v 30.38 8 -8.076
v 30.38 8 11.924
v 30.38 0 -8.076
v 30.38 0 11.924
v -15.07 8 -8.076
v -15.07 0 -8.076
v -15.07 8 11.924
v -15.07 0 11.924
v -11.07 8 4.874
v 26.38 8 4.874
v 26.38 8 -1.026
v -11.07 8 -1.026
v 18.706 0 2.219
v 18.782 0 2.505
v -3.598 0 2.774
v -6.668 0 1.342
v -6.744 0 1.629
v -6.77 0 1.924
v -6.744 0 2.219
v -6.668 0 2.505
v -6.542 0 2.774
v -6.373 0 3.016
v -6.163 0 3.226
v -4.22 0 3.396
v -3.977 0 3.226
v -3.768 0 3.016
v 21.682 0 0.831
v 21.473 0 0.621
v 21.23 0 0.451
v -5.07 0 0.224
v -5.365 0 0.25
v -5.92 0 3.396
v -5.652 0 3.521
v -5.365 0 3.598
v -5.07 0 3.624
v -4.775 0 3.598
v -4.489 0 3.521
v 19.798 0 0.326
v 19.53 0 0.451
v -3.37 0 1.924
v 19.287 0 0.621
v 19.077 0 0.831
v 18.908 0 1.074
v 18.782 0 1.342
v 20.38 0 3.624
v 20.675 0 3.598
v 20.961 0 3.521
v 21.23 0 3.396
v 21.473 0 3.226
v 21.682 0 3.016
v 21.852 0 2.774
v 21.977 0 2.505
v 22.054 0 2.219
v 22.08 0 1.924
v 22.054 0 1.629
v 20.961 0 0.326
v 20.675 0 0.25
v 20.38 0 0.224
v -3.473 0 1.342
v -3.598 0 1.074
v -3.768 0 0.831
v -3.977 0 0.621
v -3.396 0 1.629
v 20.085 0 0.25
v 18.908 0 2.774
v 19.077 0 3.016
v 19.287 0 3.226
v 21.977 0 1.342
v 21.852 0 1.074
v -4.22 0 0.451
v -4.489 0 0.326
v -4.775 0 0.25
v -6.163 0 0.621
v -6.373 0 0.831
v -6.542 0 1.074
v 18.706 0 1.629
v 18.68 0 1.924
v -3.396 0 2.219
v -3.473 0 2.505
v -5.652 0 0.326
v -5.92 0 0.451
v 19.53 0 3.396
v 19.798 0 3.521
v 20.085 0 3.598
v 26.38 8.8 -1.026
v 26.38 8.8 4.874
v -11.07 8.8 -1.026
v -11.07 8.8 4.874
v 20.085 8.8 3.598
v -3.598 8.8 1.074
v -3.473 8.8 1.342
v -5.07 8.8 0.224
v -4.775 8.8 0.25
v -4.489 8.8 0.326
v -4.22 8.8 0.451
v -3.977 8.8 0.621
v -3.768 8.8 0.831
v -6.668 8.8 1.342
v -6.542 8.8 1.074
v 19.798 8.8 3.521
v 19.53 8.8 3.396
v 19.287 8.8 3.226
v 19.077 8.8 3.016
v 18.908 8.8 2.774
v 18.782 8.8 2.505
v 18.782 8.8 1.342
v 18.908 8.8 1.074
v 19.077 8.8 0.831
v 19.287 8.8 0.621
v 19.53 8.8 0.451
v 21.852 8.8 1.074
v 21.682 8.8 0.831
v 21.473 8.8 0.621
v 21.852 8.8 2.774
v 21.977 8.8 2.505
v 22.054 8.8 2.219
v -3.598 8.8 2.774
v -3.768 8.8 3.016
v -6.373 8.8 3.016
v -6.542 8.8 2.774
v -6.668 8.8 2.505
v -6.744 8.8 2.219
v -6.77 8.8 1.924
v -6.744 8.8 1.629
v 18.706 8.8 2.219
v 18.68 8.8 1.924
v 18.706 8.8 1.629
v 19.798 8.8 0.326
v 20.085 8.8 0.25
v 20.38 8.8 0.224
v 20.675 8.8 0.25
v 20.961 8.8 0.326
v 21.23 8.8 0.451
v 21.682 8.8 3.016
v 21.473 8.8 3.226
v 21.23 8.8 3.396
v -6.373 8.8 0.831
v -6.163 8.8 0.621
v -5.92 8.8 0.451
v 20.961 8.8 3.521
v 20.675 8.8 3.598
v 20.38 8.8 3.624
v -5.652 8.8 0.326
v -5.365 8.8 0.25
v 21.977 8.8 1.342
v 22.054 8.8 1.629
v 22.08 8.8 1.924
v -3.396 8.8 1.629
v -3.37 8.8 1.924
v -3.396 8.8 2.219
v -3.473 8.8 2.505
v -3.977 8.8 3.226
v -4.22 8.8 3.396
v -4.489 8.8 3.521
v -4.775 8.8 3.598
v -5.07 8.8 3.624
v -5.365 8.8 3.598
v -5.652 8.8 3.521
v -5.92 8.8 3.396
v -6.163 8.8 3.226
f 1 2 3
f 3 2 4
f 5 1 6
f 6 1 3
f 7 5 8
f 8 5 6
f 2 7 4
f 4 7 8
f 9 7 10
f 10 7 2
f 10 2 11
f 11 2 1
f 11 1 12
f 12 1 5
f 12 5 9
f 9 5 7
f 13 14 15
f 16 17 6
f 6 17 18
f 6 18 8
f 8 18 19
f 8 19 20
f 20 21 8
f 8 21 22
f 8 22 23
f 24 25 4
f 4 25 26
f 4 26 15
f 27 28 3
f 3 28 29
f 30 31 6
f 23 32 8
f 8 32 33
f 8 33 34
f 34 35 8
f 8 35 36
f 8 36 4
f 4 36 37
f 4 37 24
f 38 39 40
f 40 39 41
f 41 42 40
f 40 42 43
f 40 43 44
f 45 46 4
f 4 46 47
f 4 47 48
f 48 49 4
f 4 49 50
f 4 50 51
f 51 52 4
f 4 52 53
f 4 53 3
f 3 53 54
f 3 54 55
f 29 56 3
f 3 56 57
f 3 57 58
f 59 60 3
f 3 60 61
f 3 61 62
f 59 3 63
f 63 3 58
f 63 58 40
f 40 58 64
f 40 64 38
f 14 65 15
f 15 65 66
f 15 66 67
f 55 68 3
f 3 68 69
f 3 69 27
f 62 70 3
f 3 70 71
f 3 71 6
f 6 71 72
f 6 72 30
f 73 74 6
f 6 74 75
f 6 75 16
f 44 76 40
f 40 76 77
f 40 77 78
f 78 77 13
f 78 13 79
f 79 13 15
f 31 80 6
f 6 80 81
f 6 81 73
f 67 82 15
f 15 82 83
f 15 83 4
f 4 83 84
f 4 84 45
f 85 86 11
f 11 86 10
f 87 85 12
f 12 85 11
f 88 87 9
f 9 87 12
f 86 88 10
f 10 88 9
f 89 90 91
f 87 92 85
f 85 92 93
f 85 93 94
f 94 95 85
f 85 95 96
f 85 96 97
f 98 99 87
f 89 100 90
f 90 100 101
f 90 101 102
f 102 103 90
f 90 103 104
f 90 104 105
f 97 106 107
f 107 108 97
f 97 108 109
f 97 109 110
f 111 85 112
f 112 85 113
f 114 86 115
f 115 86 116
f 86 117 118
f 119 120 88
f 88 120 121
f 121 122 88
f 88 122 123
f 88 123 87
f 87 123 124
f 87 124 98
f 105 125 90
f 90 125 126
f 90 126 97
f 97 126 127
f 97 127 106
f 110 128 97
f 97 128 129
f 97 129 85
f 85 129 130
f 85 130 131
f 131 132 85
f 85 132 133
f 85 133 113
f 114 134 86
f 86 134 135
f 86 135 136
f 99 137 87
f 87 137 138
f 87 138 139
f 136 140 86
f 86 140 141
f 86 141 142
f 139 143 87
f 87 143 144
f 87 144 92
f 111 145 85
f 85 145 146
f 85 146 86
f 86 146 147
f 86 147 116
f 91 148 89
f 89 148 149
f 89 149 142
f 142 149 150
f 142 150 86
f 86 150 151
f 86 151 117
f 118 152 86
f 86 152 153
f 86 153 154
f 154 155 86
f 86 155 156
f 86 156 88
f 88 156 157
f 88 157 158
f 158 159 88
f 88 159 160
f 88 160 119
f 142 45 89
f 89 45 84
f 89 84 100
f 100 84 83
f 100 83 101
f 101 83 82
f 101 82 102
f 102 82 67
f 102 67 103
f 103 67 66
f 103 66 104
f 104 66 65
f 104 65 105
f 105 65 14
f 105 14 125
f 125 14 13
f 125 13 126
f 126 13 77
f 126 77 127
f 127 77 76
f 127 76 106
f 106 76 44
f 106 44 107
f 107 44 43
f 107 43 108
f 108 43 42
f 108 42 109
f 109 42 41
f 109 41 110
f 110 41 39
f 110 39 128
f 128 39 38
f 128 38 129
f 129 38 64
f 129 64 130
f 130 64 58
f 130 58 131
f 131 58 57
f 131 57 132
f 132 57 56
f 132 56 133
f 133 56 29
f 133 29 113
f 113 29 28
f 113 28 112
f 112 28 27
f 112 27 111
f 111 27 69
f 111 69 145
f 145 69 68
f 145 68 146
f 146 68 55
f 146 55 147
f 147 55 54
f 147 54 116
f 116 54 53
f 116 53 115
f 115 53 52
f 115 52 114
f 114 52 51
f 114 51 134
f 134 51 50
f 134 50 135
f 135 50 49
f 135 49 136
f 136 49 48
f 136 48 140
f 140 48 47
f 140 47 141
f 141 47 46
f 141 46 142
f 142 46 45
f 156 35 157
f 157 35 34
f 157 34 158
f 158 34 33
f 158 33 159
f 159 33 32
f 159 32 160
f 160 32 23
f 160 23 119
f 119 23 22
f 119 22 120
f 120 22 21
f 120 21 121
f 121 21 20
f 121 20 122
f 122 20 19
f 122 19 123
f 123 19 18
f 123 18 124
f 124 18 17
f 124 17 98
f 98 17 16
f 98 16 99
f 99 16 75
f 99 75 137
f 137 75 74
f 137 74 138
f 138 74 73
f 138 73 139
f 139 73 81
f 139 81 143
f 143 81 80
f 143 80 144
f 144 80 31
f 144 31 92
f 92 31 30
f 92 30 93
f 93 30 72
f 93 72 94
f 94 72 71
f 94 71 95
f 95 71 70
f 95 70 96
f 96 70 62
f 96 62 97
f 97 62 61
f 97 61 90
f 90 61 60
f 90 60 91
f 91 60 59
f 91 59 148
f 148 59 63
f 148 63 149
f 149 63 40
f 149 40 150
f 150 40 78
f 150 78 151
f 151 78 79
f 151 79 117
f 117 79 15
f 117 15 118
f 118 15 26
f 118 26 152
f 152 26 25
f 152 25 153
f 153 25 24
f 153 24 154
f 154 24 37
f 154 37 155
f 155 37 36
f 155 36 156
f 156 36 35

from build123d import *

# Parameters (mm, degrees)
SKETCH1_W            = 45.45
SKETCH1_H            = 20
BOSS_EXTRUDE1_DEPTH  = 8
SKETCH2_W            = 37.45
SKETCH2_H            = 5.9
BOSS_EXTRUDE2_DEPTH  = 0.8
M3_CLEARANCE_HOLE1_D = 3.4


with BuildPart() as part:
    # Sketch1 → Boss-Extrude1 (new body)
    with BuildSketch(Plane(origin=(0, 0, 0), x_dir=(1, 0, 0), z_dir=(0, 1, 0))):
        with Locations((7.654765617, -1.92370193)):
            Rectangle(SKETCH1_W, SKETCH1_H)
    extrude(amount=BOSS_EXTRUDE1_DEPTH)

    # Sketch2 → Boss-Extrude2 (add)
    with BuildSketch(Plane(origin=(0, 8, 0), x_dir=(1, 0, 0), z_dir=(0, 1, 0))):
        with Locations((7.654765617, -1.92370193)):
            Rectangle(SKETCH2_W, SKETCH2_H)
    extrude(amount=BOSS_EXTRUDE2_DEPTH)

    # M3 Clearance Hole1 (through all)
    with Locations(Plane(origin=(0, 0, 0), x_dir=(-1, 0, 0), z_dir=(0, -1, 0))):
        with Locations((-20.379765617, -1.92370193), (5.070234383, -1.92370193)):
            Hole(M3_CLEARANCE_HOLE1_D / 2)


solid = part.part
